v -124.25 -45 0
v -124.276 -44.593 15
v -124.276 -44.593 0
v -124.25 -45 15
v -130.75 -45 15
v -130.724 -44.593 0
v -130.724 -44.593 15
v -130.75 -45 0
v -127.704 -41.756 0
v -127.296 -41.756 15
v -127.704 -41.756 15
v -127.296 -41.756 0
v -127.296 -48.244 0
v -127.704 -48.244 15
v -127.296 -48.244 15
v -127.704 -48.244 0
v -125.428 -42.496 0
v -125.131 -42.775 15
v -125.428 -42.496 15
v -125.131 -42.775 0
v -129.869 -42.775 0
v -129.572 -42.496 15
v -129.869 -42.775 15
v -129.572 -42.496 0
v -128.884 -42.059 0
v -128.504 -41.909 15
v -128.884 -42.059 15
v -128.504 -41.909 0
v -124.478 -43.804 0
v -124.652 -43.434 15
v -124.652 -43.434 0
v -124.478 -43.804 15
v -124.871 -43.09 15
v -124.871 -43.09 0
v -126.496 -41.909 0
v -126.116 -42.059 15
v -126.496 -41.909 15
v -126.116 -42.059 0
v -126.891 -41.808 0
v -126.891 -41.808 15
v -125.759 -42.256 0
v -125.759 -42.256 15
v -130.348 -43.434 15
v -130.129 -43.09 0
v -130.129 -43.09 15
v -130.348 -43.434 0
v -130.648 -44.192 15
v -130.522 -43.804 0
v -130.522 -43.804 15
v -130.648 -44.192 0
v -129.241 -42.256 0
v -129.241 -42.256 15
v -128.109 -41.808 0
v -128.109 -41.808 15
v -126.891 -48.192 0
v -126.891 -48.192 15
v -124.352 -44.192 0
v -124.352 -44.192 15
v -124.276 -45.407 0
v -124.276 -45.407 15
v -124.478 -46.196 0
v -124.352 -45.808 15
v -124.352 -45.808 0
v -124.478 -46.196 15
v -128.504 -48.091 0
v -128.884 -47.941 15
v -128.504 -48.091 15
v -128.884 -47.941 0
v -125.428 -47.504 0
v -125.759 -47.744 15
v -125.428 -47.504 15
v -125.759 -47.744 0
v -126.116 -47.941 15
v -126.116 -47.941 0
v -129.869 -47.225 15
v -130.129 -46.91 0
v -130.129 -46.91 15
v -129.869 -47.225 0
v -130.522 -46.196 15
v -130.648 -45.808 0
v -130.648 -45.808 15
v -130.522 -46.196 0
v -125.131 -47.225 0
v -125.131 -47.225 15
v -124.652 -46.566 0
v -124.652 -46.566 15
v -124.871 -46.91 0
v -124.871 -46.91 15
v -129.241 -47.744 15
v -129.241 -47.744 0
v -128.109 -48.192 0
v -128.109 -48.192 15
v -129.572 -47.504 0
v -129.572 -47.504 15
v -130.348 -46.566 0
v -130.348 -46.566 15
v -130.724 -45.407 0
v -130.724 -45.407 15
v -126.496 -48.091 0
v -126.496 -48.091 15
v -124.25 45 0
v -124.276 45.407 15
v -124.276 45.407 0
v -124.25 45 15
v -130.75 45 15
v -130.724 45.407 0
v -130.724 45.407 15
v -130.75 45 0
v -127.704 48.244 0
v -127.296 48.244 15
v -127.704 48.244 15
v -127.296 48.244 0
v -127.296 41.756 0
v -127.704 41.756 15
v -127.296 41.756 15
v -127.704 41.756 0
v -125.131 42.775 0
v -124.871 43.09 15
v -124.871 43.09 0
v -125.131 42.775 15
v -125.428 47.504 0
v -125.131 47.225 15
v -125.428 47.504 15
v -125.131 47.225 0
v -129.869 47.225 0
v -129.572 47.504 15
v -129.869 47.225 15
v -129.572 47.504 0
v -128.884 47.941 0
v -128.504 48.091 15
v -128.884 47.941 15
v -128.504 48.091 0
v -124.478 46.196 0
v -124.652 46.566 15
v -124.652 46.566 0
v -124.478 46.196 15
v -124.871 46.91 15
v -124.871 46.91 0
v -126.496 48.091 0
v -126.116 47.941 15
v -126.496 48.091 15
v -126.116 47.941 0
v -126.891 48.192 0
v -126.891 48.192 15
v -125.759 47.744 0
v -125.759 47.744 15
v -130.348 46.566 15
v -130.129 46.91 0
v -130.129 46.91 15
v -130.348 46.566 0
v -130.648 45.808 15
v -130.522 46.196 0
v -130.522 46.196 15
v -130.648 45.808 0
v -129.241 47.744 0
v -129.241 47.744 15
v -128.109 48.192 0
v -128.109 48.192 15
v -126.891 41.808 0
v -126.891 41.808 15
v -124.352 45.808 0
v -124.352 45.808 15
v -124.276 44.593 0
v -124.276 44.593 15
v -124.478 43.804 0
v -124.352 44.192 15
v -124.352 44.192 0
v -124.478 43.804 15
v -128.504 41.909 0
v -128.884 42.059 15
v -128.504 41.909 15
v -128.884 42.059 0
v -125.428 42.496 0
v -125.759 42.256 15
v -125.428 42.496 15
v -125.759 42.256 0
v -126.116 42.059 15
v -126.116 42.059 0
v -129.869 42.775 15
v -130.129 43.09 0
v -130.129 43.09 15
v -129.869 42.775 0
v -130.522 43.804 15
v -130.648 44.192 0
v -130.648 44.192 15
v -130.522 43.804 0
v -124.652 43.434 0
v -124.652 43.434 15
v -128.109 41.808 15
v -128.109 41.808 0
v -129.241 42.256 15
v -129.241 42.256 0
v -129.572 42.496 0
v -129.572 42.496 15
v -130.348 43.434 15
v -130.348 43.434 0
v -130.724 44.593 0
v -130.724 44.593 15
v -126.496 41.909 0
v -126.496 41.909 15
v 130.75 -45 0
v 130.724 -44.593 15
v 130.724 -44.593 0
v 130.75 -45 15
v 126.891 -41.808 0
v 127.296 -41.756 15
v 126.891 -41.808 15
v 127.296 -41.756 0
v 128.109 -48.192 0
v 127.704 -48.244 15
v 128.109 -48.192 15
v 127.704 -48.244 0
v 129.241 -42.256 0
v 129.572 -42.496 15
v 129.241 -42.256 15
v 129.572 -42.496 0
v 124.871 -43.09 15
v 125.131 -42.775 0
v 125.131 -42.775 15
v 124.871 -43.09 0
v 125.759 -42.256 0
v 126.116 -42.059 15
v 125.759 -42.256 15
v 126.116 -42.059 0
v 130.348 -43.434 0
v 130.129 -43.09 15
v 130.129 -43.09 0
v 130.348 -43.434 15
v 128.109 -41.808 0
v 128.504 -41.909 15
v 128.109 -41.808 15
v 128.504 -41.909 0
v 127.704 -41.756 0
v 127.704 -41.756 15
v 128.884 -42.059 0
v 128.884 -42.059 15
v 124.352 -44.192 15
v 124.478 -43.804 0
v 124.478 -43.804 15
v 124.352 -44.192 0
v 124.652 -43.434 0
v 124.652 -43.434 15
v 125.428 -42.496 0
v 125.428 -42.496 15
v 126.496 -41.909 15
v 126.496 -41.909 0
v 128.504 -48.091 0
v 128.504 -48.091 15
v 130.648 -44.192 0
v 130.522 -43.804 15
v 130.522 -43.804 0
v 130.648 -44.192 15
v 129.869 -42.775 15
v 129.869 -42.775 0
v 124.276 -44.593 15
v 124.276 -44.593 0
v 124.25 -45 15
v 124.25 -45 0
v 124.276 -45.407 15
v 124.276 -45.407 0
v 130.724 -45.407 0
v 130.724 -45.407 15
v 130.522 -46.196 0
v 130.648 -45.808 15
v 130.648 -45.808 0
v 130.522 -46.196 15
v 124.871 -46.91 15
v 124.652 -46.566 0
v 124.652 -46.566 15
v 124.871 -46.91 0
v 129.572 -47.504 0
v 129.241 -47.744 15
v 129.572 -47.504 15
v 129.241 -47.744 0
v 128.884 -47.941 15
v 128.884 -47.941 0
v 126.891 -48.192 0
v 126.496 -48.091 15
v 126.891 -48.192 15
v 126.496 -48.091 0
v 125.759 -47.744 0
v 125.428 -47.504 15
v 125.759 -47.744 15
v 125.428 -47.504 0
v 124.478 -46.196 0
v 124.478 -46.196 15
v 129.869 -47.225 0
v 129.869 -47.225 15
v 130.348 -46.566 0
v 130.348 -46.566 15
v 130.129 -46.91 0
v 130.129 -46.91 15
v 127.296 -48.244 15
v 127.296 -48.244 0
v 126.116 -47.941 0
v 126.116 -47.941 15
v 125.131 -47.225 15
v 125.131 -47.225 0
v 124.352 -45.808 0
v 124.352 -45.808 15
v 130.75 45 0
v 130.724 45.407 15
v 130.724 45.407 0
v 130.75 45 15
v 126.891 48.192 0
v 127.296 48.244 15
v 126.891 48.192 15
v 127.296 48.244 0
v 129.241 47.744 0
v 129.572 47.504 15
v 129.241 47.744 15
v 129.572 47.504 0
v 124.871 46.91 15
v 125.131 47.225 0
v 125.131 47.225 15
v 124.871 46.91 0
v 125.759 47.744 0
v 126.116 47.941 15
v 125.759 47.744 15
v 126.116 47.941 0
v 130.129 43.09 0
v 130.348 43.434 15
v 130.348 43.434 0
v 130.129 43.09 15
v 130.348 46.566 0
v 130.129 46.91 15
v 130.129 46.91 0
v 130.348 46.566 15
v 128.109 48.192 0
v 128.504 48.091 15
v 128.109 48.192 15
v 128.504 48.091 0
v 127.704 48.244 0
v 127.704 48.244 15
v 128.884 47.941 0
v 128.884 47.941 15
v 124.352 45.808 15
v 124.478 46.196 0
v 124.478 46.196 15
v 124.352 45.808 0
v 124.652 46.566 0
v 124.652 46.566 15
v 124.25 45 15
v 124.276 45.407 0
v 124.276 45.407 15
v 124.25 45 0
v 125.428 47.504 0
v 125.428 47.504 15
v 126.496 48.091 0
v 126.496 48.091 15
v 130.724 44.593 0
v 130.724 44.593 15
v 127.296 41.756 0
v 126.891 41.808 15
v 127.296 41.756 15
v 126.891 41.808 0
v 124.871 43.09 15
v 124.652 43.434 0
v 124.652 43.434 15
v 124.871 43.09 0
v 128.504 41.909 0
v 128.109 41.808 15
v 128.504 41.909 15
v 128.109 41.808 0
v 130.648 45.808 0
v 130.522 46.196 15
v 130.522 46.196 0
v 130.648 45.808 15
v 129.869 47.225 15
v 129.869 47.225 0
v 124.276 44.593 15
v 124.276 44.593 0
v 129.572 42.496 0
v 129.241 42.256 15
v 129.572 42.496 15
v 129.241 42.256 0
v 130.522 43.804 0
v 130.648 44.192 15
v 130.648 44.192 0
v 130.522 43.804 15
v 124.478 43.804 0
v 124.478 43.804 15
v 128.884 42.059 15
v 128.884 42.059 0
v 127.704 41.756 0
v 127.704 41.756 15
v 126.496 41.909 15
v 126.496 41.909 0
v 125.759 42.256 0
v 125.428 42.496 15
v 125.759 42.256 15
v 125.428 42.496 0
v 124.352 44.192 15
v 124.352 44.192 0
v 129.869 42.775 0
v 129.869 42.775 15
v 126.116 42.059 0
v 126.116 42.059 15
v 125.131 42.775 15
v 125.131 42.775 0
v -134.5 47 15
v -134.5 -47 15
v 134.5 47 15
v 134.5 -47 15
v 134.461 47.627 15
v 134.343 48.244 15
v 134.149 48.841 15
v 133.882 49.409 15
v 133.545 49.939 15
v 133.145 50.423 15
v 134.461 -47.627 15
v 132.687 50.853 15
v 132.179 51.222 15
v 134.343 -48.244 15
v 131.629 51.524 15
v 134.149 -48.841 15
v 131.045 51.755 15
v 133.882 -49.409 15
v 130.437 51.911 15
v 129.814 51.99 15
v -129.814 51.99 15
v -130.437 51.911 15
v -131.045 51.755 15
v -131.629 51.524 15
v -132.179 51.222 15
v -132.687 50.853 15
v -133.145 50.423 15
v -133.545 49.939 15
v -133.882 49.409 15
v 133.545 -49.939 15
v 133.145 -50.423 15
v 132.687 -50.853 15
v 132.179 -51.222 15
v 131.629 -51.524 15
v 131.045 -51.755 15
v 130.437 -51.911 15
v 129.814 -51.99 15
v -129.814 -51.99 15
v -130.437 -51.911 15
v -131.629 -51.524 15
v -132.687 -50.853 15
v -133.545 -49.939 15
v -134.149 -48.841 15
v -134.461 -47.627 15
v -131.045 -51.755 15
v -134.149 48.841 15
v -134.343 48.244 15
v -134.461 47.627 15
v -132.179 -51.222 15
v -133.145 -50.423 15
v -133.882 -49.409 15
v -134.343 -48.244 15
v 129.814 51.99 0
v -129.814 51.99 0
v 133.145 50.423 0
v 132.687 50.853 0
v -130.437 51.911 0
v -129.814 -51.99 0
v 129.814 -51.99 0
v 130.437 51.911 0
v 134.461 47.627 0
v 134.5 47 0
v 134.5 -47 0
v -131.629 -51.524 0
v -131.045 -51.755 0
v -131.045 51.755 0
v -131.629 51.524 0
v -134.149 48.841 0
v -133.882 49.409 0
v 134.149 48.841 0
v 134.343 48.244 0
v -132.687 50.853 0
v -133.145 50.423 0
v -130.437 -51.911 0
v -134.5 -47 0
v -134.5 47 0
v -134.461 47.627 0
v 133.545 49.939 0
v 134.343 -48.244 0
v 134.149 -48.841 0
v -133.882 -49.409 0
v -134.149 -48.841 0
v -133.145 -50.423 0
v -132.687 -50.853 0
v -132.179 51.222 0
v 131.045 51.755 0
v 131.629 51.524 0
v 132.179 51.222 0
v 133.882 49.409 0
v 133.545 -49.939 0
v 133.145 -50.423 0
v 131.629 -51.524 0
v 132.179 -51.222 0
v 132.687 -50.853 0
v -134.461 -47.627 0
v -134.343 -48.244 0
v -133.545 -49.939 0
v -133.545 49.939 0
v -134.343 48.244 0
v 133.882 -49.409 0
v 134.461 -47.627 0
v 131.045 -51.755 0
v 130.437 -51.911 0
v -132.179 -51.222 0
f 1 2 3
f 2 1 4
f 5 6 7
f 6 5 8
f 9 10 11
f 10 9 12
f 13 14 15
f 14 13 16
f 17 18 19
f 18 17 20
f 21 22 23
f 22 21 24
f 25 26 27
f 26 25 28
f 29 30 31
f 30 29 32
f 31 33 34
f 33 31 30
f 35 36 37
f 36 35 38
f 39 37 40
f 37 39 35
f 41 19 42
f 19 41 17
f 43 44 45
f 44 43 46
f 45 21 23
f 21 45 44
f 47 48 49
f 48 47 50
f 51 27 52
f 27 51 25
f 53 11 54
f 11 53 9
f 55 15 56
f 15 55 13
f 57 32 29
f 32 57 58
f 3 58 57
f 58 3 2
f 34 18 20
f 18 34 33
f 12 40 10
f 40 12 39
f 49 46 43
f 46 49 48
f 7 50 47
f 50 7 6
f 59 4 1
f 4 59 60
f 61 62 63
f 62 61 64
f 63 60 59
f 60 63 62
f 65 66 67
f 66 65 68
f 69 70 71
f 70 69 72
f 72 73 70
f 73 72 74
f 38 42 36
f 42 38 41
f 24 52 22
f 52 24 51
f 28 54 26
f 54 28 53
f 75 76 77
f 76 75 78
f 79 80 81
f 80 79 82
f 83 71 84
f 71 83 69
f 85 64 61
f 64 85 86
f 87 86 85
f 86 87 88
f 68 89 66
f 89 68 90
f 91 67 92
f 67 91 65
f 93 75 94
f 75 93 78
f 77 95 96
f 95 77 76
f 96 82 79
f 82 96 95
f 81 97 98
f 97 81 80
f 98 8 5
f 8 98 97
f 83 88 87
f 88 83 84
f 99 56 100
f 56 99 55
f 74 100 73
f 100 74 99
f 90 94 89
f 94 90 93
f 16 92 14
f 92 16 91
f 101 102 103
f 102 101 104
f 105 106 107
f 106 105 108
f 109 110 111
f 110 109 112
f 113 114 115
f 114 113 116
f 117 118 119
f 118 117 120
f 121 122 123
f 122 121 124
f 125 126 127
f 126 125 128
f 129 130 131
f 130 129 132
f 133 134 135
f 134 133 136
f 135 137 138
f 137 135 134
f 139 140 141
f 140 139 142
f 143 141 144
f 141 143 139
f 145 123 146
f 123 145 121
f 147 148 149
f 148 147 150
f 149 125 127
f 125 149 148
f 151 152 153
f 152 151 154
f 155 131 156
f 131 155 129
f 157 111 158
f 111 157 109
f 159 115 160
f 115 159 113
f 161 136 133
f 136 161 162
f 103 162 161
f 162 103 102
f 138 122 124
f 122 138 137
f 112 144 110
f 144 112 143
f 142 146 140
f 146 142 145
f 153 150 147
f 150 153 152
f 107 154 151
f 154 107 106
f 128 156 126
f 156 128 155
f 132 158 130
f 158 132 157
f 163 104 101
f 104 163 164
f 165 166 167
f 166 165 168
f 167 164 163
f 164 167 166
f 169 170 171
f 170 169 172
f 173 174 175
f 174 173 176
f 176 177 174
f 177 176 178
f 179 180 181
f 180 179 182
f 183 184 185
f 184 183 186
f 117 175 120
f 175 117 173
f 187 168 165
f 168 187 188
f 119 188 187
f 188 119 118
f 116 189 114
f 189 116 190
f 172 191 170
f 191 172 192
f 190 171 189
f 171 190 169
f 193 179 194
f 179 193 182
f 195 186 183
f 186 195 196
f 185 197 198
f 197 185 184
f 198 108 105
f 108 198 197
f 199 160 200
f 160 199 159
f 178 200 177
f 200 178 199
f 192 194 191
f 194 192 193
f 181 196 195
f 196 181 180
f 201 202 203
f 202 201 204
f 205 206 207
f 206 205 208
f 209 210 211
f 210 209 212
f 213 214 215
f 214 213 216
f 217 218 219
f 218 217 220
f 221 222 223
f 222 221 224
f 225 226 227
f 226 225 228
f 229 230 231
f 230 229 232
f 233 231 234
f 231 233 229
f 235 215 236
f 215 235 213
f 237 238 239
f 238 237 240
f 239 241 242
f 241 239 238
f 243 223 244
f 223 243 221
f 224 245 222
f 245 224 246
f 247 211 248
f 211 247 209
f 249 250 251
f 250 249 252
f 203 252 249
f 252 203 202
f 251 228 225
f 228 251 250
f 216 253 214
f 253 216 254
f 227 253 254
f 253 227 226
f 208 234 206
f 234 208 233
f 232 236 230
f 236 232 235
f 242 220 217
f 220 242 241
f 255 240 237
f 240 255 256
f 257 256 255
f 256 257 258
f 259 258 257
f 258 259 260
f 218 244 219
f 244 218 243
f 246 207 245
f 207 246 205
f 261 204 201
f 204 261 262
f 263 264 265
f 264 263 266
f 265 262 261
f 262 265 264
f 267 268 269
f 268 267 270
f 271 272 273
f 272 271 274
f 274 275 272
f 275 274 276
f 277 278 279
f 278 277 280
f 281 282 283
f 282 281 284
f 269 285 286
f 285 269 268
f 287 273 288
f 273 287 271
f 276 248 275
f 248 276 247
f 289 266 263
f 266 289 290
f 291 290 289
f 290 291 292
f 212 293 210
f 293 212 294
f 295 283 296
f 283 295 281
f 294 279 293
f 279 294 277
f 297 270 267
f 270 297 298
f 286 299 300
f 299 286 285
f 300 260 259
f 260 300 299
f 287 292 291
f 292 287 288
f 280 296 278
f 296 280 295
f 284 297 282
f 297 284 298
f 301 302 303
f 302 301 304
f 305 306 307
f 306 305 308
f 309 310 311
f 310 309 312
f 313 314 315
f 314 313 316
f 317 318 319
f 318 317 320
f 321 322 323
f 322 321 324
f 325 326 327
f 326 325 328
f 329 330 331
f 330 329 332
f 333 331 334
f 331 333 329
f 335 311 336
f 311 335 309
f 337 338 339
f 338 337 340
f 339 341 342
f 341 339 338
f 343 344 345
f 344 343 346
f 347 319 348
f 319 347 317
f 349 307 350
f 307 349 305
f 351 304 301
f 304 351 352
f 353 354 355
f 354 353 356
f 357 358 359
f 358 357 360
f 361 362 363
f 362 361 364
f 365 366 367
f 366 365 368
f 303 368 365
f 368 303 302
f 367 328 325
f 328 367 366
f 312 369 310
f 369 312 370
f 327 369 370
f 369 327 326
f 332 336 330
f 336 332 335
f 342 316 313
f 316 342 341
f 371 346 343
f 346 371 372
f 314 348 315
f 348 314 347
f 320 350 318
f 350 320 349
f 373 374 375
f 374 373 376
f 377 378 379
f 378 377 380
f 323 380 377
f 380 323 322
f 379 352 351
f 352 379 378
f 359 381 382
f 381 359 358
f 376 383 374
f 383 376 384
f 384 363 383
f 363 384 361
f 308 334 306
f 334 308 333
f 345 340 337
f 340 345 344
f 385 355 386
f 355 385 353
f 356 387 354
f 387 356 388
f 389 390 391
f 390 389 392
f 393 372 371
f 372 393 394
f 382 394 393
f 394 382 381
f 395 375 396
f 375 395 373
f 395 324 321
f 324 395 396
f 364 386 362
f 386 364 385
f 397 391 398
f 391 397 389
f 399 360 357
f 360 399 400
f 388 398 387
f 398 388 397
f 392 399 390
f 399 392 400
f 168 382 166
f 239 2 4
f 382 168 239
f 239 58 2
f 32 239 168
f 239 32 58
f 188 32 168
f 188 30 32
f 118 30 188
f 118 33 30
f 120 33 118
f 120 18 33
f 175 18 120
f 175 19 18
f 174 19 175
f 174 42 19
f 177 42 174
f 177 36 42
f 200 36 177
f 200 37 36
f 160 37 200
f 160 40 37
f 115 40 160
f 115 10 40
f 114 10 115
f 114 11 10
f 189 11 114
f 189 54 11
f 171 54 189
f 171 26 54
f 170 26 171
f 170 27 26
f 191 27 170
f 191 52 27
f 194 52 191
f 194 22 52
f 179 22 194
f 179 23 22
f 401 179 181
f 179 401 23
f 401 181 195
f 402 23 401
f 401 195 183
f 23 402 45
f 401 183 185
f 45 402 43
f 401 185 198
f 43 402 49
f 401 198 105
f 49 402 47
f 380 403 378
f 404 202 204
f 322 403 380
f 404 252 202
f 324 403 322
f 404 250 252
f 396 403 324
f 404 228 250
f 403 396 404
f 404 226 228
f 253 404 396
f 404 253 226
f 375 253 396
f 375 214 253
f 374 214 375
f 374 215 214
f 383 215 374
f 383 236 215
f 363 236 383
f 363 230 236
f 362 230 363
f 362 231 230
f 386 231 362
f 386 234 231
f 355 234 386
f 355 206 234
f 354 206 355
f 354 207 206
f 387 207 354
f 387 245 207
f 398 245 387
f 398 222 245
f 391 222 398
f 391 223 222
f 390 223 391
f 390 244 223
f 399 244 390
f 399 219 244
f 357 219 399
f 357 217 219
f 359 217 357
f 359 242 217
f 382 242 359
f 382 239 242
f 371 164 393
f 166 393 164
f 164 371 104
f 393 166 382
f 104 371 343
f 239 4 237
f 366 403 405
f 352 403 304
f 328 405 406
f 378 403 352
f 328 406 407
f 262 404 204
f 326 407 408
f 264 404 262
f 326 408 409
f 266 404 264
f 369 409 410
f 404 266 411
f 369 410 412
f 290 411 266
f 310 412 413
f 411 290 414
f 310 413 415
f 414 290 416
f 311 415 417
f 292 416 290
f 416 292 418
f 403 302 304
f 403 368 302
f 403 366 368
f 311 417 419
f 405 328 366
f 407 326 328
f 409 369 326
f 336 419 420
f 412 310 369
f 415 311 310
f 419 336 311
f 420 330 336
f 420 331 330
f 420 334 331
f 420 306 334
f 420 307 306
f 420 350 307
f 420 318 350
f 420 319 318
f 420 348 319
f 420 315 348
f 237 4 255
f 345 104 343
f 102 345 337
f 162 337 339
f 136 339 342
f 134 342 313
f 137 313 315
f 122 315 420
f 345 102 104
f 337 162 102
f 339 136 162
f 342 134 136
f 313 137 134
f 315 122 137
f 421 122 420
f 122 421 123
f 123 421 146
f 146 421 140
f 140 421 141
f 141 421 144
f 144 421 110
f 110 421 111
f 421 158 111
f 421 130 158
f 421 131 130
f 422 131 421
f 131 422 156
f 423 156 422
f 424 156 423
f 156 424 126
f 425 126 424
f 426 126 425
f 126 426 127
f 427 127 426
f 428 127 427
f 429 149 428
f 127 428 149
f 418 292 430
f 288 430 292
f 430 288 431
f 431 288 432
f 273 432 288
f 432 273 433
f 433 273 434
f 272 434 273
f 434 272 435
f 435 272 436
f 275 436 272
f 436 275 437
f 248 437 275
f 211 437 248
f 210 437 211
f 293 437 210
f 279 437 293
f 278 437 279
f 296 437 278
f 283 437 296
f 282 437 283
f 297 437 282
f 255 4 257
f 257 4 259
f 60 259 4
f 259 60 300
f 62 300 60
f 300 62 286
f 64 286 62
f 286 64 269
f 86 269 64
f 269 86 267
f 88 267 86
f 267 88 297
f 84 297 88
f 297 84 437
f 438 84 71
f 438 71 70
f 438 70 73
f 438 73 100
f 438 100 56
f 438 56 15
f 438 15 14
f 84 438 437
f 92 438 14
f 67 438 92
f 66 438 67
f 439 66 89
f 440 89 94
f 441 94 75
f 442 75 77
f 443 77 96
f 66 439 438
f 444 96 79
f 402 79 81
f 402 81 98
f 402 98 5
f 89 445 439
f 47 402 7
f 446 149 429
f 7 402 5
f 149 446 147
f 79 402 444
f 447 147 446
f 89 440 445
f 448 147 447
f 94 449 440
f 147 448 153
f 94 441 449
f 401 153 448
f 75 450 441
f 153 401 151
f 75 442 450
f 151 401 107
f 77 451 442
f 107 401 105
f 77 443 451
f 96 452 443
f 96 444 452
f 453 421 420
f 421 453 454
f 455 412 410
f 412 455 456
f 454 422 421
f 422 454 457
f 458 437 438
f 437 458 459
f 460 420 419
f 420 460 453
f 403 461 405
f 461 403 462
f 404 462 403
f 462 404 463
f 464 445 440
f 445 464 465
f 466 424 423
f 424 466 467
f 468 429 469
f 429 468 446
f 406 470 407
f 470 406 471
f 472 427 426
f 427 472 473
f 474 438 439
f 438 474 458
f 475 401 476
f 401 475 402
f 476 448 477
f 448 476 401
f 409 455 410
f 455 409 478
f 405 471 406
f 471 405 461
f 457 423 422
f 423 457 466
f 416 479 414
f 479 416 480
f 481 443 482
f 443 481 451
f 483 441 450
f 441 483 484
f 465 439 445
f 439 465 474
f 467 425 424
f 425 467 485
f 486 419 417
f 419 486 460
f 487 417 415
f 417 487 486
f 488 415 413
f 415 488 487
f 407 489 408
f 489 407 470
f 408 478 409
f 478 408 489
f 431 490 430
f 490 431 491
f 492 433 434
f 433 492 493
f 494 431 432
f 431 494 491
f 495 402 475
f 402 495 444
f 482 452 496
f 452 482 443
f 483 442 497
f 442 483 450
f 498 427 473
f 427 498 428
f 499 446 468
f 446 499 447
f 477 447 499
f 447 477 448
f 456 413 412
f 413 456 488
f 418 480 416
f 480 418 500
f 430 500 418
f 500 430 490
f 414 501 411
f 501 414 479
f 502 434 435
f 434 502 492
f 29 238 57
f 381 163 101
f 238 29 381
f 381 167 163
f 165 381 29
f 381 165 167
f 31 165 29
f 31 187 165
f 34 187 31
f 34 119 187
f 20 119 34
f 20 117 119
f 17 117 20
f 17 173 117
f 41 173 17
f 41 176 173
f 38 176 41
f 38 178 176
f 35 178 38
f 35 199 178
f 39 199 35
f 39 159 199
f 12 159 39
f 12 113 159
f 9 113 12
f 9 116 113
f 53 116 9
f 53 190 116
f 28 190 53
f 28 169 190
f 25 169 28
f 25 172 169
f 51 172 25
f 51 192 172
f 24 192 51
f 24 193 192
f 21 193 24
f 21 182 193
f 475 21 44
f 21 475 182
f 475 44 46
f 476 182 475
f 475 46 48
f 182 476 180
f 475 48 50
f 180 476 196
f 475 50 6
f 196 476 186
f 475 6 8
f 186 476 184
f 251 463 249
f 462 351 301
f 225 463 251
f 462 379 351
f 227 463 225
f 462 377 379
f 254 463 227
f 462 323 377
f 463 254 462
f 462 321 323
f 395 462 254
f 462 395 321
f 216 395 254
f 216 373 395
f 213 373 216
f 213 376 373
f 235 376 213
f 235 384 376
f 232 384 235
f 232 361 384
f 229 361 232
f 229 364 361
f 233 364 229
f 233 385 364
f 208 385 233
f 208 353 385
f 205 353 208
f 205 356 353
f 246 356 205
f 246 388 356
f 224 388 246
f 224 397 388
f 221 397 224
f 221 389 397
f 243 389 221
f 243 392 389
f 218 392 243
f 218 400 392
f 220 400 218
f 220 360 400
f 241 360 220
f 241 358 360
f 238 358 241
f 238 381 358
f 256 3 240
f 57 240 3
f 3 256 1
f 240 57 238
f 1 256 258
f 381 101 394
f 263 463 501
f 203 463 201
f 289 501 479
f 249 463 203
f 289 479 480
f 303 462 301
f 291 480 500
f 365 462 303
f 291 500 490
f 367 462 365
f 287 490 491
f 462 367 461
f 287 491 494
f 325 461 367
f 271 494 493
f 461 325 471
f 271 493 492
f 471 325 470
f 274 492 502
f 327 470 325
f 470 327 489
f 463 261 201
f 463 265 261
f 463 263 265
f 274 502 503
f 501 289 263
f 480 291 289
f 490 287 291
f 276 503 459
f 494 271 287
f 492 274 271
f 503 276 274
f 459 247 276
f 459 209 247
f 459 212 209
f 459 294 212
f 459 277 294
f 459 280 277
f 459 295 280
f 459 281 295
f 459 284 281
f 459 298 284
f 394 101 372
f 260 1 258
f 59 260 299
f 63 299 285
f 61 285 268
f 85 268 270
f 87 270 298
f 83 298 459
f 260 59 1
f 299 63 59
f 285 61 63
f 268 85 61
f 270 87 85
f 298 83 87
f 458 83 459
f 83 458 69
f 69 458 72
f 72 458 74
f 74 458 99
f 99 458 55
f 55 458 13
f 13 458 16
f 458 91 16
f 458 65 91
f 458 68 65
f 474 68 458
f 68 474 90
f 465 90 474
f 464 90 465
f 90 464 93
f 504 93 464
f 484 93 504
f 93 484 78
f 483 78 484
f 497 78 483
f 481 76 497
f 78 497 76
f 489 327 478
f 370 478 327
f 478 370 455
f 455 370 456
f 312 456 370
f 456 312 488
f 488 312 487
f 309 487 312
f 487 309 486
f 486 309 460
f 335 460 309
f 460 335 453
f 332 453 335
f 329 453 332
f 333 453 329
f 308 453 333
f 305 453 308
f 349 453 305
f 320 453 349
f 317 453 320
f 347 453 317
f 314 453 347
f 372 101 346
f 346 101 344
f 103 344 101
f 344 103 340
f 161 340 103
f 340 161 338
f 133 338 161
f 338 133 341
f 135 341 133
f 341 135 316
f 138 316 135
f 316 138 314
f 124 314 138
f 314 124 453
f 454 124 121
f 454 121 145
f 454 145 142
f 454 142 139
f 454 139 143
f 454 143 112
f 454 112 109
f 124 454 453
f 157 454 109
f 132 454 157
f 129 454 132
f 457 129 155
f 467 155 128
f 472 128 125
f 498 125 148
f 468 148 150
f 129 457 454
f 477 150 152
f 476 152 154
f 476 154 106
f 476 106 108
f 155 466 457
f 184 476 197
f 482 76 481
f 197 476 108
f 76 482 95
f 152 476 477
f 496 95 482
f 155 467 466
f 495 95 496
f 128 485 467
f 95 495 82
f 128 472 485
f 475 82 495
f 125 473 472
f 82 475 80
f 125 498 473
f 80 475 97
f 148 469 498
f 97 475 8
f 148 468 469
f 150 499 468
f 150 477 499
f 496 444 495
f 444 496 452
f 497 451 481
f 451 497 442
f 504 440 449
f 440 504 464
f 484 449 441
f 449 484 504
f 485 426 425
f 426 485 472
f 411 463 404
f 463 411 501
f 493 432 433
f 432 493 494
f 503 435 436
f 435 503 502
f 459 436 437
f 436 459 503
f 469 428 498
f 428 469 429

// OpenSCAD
$fn = 50;


difference() {
	union() {
		hull() {
			translate(v = [-129.5000000000, 47.0000000000, 0]) {
				cylinder(h = 15, r = 5);
			}
			translate(v = [129.5000000000, 47.0000000000, 0]) {
				cylinder(h = 15, r = 5);
			}
			translate(v = [-129.5000000000, -47.0000000000, 0]) {
				cylinder(h = 15, r = 5);
			}
			translate(v = [129.5000000000, -47.0000000000, 0]) {
				cylinder(h = 15, r = 5);
			}
		}
	}
	union() {
		translate(v = [-127.5000000000, -45.0000000000, -100.0000000000]) {
			cylinder(h = 200, r = 3.2500000000);
		}
		translate(v = [-127.5000000000, 45.0000000000, -100.0000000000]) {
			cylinder(h = 200, r = 3.2500000000);
		}
		translate(v = [127.5000000000, -45.0000000000, -100.0000000000]) {
			cylinder(h = 200, r = 3.2500000000);
		}
		translate(v = [127.5000000000, 45.0000000000, -100.0000000000]) {
			cylinder(h = 200, r = 3.2500000000);
		}
	}
}
